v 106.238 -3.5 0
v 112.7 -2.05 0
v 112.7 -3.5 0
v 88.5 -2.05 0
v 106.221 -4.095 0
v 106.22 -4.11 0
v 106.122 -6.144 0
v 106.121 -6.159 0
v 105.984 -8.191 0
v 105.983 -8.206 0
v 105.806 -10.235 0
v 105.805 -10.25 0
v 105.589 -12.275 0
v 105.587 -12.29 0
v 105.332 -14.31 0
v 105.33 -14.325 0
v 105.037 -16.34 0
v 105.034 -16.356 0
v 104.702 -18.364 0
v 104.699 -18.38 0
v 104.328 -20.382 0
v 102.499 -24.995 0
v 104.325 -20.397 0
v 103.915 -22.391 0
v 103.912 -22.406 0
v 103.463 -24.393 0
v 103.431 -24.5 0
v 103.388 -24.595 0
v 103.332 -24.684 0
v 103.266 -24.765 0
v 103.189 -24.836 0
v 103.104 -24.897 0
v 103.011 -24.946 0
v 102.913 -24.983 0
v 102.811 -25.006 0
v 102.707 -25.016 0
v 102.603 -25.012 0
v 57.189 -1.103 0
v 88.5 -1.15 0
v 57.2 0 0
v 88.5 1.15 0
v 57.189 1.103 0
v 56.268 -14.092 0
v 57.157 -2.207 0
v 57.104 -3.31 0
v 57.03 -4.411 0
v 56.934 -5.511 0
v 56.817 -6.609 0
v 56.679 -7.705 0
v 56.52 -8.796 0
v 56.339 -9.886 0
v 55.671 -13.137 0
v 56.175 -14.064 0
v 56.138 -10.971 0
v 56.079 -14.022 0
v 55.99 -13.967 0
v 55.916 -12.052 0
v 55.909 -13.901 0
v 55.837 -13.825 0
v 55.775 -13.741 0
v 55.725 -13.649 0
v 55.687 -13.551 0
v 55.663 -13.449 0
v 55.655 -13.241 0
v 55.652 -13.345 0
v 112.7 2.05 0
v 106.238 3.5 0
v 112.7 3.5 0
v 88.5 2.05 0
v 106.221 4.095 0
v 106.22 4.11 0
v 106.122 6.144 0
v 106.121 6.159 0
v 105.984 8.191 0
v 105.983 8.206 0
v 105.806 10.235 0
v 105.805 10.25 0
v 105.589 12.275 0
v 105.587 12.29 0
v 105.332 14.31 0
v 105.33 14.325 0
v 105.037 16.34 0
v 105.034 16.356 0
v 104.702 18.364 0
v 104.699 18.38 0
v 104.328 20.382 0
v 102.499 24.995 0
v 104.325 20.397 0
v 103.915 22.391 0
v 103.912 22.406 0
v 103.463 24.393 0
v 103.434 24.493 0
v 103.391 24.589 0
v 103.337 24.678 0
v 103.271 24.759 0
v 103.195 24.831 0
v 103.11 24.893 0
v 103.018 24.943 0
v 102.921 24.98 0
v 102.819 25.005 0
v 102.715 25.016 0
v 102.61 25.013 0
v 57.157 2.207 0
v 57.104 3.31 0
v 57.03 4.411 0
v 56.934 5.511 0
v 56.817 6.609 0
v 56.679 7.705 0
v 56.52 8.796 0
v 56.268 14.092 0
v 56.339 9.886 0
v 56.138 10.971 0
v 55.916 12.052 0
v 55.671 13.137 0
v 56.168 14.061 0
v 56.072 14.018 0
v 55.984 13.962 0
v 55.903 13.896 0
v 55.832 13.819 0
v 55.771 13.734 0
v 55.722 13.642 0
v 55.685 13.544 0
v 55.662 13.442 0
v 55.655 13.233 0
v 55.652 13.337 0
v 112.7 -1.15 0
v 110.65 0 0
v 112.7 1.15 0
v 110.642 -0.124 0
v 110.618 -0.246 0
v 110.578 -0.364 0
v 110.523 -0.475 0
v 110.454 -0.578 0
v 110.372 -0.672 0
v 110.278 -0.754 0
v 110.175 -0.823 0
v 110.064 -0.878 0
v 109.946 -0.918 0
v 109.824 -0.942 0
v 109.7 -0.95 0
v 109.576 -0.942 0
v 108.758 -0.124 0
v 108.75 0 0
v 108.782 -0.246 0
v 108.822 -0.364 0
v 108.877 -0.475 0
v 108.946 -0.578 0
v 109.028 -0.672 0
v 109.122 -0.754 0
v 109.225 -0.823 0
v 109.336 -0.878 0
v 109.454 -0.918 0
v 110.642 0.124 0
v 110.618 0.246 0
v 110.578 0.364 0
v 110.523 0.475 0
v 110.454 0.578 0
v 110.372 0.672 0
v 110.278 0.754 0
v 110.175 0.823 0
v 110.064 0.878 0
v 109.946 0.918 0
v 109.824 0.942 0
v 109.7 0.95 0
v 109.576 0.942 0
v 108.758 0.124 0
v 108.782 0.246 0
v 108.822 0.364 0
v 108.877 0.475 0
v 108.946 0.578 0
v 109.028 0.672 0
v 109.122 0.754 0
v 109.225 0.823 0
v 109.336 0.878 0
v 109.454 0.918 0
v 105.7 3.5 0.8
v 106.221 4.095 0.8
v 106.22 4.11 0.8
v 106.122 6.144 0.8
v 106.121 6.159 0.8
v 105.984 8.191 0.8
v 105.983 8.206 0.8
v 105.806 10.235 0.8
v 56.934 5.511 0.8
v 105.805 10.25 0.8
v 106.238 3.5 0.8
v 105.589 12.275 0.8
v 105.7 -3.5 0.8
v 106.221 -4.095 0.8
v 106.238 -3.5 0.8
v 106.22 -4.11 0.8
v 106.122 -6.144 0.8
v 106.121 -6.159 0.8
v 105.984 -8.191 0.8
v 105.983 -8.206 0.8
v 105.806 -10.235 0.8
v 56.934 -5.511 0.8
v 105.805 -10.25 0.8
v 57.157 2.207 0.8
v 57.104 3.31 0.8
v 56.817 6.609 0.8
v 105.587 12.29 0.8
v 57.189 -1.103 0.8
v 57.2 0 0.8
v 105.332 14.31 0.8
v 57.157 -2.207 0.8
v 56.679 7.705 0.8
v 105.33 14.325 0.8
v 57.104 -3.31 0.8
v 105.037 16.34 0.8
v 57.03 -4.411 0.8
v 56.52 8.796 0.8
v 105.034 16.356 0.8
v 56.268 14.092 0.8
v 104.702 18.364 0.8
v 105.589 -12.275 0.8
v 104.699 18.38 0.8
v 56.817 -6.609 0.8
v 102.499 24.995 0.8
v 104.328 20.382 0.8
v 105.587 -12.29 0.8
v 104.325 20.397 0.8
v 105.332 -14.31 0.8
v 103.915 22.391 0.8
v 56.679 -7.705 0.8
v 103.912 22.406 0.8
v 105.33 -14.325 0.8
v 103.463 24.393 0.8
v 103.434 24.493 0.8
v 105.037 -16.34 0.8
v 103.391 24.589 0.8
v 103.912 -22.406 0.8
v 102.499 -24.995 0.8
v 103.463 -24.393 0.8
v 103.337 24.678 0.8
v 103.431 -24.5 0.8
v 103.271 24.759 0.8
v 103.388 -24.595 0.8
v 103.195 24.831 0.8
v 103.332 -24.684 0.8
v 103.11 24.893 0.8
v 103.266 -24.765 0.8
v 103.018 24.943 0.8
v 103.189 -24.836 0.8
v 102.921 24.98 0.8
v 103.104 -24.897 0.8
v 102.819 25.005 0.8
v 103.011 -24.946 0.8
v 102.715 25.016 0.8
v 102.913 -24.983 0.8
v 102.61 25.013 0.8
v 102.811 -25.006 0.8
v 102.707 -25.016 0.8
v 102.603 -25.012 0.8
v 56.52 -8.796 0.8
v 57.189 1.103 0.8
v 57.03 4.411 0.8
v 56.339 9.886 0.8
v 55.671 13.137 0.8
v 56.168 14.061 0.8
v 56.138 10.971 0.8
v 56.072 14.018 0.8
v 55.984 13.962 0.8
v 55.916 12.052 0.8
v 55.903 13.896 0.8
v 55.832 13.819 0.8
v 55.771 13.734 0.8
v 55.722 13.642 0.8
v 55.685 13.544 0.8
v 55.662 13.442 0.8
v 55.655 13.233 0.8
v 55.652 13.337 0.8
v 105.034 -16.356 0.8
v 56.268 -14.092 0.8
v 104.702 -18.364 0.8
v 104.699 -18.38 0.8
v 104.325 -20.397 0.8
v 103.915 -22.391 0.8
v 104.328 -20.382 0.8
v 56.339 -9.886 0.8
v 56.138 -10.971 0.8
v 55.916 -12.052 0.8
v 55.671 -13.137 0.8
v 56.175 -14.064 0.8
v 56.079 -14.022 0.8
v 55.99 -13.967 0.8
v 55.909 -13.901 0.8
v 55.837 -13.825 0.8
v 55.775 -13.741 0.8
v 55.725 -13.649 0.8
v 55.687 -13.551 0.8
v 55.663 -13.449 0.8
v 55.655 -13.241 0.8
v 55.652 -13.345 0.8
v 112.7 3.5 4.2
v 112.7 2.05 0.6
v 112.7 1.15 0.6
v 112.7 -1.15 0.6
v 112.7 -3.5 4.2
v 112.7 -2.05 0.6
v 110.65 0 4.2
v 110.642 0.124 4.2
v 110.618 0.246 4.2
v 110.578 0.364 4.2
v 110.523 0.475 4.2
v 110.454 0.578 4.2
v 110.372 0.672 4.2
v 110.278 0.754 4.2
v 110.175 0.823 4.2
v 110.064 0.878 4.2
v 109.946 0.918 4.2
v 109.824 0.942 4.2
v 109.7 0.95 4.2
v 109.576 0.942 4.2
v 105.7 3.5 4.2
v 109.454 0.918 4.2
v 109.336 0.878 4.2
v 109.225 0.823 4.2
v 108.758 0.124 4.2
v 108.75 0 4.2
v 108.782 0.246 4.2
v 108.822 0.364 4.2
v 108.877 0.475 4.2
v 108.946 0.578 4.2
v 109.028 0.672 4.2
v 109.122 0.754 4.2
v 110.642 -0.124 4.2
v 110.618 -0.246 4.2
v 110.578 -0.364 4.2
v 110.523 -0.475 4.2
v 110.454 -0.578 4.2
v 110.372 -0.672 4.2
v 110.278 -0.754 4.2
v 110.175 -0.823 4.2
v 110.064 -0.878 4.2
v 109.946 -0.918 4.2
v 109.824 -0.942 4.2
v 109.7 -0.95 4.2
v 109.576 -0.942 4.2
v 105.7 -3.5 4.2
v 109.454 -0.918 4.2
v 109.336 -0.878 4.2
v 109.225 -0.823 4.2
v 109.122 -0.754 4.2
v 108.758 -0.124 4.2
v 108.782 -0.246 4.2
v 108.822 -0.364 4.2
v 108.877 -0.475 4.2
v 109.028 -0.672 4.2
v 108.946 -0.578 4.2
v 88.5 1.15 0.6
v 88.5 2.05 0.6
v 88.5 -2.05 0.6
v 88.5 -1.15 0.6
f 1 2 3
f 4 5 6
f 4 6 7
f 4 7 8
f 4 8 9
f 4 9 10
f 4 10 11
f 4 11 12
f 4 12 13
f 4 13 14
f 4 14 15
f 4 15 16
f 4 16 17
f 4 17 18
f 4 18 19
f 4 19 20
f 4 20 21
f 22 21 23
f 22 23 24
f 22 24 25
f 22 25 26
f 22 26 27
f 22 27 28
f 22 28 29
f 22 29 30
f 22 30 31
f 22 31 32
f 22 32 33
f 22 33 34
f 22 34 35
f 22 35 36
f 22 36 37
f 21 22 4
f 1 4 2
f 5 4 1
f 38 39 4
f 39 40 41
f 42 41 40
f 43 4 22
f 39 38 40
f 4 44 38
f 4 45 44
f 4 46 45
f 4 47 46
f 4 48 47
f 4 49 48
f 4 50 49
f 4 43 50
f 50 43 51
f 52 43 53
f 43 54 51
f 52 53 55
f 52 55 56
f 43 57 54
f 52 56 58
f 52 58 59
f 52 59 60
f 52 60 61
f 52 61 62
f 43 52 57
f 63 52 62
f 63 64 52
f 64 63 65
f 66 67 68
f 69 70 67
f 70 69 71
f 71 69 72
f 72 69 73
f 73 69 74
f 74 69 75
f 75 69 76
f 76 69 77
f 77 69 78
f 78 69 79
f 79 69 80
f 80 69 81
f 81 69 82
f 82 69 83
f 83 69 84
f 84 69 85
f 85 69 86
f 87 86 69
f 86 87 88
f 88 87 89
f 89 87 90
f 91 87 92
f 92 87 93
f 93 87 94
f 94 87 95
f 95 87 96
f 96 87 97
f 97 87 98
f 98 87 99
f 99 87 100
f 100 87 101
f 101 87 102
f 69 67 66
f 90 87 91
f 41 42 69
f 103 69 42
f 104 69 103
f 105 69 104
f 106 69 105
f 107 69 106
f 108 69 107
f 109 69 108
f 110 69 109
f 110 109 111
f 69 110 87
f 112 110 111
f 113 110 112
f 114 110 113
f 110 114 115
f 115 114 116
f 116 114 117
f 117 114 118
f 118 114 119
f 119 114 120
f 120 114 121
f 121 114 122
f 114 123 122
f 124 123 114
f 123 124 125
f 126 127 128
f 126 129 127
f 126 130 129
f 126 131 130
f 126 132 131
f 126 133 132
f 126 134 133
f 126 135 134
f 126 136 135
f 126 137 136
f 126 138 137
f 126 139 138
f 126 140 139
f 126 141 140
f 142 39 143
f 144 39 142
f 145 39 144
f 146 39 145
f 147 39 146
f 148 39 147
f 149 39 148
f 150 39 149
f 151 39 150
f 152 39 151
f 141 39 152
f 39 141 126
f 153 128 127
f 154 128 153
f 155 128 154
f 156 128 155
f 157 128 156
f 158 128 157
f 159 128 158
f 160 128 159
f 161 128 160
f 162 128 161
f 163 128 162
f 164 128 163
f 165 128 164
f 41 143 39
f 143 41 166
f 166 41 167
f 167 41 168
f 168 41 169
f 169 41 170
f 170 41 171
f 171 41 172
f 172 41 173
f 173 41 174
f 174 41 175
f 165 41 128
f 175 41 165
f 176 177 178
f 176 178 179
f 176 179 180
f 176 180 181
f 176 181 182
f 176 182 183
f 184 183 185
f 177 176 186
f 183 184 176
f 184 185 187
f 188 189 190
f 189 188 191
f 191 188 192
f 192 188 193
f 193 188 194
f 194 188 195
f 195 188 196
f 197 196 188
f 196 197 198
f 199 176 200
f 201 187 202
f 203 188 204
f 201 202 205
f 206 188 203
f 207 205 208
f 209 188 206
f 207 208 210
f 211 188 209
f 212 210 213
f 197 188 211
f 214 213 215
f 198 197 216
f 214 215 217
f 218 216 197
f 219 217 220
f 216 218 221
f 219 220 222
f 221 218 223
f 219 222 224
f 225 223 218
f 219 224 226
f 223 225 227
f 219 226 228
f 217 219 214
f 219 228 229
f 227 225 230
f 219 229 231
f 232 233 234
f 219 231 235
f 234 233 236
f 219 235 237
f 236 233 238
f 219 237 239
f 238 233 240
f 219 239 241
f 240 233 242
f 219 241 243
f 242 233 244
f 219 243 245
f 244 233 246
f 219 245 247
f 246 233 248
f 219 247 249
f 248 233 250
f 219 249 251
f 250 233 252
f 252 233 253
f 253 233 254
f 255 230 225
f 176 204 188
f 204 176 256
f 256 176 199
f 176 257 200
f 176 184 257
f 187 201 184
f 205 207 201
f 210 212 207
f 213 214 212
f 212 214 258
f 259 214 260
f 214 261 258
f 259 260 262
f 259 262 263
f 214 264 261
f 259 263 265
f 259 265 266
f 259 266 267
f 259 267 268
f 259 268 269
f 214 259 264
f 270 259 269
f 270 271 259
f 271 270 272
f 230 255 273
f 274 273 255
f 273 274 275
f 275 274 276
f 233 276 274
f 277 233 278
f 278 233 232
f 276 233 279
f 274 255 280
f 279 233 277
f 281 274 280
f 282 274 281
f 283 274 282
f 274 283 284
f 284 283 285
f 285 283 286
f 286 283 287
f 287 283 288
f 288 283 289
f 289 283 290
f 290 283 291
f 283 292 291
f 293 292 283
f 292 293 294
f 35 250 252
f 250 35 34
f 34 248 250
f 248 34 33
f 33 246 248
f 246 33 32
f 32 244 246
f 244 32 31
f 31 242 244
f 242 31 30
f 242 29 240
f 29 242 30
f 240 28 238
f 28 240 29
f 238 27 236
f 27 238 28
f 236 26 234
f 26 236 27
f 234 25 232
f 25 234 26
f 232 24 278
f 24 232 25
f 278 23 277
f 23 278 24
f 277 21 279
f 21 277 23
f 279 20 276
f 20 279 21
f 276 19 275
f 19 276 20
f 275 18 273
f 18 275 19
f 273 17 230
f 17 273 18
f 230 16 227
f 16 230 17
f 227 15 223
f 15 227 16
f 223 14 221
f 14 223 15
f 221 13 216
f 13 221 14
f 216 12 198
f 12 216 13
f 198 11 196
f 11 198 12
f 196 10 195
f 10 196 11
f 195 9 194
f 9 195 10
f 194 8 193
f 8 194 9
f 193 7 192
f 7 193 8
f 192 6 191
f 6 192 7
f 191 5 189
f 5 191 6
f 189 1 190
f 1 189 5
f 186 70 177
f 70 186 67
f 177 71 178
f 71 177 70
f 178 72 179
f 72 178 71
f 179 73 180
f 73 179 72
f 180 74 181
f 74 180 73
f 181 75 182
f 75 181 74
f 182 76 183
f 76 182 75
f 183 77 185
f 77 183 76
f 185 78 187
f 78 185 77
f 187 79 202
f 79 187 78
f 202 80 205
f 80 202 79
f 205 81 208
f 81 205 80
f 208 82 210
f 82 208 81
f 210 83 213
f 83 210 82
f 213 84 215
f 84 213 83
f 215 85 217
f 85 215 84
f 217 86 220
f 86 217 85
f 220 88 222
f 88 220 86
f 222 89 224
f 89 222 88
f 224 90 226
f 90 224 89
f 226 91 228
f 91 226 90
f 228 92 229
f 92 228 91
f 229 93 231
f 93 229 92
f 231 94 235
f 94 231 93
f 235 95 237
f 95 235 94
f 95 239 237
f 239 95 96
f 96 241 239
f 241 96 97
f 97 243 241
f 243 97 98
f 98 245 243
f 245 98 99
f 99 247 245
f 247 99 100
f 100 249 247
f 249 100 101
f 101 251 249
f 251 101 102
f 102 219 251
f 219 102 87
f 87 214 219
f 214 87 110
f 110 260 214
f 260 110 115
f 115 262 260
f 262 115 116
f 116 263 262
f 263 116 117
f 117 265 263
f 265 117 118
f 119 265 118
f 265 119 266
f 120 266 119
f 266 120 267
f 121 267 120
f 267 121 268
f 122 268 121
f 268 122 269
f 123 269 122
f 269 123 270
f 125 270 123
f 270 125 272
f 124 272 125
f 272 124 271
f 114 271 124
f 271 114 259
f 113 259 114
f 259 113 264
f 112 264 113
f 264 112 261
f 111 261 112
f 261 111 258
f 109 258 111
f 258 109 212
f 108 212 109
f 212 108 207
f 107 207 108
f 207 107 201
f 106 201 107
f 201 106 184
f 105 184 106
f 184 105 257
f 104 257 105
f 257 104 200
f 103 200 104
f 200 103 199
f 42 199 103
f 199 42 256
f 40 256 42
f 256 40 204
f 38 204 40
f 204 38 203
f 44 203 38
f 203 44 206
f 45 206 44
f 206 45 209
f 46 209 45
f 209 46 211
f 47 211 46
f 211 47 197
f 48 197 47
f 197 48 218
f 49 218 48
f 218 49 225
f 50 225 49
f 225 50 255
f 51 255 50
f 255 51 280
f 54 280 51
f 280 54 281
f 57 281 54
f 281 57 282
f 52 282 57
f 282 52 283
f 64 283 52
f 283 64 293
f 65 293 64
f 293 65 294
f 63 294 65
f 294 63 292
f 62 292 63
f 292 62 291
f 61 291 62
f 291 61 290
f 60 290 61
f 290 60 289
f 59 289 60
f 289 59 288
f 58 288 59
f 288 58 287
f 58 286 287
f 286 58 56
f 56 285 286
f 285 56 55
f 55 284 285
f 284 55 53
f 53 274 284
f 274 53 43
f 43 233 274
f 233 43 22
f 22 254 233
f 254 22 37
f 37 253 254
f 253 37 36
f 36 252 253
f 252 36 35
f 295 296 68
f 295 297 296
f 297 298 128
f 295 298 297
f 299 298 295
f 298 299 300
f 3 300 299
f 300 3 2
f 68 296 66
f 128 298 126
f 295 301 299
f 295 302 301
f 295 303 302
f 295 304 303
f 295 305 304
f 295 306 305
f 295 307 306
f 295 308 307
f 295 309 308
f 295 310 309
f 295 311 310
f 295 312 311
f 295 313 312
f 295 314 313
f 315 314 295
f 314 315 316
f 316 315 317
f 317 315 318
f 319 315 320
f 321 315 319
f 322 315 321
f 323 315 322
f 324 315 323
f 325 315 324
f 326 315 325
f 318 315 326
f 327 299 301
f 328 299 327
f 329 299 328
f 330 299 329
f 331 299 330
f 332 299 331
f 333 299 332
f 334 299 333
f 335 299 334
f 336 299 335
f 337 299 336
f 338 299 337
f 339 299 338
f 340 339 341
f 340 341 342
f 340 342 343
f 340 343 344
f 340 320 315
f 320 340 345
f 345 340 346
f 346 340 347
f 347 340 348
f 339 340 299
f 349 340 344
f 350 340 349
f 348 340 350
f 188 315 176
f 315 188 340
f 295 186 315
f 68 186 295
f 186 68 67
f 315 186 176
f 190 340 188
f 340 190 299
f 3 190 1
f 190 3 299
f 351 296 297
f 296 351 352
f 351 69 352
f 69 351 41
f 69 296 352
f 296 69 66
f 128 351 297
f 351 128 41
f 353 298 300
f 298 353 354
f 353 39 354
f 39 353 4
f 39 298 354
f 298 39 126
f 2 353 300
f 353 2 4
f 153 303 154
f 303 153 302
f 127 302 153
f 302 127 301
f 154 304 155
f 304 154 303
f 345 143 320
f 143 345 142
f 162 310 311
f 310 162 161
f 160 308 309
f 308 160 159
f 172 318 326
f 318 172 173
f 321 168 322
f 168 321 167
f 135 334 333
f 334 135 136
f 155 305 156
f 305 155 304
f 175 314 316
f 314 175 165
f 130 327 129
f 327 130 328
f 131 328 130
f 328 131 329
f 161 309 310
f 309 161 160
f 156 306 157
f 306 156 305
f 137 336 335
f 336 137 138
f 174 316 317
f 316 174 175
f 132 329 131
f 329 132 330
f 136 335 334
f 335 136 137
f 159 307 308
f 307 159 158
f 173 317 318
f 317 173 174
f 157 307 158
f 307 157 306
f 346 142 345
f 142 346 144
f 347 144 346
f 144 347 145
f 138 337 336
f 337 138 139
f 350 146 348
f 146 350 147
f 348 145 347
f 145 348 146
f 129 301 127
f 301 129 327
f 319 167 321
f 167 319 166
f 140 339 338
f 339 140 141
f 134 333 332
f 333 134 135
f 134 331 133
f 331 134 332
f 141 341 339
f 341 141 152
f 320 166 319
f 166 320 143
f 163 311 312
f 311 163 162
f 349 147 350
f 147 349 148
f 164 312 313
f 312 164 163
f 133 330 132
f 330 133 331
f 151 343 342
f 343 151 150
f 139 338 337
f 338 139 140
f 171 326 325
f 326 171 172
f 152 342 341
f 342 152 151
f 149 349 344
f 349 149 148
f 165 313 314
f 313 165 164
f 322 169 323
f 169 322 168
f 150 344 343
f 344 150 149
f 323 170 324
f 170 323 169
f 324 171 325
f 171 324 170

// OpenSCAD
// Gen-CY — bobbin LID (top flange + locating tab). Print x12, flange face DOWN on the bed.
// CA-glue onto the hub top BEFORE winding. Tab = lap joint into the stator tab pocket; 1.75 mm filament
// pin through pin hole + stator ledge, trim flush. Lead slots carry both leads flush.
include <parameters.scad>;
$fn = 48;
module sector_2d(r_in, r_out, ang) {
    polygon([
        for (a = [-ang/2 : ang/24 : ang/2]) [r_in*cos(a), r_in*sin(a)],
        for (a = [ang/2 : -ang/24 : -ang/2]) [r_out*cos(a), r_out*sin(a)]
    ]);
}
module footprint_2d() { offset(r=wall) sector_2d(coil_id_r, coil_od_r, span_deg); }
module hub_2d()       { offset(delta=-coil_core_inset) sector_2d(coil_id_r, coil_od_r, span_deg); }

difference() {
    union() {
        linear_extrude(flange_t) footprint_2d();
        translate([coil_od_r + 0.2, -tab_w/2, 0]) cube([tab_len, tab_w, tab_h]);
    }
    translate([coil_mount_r, 0, -0.1]) cylinder(d=pin_d, h=tab_h + 1);
    for (y = [lead_y, -lead_y])
        translate([coil_od_r - coil_core_inset - 0.5, y - lead_slot_w/2, -0.1])
            cube([coil_core_inset + tab_len + 2, lead_slot_w, lead_groove_d + 0.1]);
}
